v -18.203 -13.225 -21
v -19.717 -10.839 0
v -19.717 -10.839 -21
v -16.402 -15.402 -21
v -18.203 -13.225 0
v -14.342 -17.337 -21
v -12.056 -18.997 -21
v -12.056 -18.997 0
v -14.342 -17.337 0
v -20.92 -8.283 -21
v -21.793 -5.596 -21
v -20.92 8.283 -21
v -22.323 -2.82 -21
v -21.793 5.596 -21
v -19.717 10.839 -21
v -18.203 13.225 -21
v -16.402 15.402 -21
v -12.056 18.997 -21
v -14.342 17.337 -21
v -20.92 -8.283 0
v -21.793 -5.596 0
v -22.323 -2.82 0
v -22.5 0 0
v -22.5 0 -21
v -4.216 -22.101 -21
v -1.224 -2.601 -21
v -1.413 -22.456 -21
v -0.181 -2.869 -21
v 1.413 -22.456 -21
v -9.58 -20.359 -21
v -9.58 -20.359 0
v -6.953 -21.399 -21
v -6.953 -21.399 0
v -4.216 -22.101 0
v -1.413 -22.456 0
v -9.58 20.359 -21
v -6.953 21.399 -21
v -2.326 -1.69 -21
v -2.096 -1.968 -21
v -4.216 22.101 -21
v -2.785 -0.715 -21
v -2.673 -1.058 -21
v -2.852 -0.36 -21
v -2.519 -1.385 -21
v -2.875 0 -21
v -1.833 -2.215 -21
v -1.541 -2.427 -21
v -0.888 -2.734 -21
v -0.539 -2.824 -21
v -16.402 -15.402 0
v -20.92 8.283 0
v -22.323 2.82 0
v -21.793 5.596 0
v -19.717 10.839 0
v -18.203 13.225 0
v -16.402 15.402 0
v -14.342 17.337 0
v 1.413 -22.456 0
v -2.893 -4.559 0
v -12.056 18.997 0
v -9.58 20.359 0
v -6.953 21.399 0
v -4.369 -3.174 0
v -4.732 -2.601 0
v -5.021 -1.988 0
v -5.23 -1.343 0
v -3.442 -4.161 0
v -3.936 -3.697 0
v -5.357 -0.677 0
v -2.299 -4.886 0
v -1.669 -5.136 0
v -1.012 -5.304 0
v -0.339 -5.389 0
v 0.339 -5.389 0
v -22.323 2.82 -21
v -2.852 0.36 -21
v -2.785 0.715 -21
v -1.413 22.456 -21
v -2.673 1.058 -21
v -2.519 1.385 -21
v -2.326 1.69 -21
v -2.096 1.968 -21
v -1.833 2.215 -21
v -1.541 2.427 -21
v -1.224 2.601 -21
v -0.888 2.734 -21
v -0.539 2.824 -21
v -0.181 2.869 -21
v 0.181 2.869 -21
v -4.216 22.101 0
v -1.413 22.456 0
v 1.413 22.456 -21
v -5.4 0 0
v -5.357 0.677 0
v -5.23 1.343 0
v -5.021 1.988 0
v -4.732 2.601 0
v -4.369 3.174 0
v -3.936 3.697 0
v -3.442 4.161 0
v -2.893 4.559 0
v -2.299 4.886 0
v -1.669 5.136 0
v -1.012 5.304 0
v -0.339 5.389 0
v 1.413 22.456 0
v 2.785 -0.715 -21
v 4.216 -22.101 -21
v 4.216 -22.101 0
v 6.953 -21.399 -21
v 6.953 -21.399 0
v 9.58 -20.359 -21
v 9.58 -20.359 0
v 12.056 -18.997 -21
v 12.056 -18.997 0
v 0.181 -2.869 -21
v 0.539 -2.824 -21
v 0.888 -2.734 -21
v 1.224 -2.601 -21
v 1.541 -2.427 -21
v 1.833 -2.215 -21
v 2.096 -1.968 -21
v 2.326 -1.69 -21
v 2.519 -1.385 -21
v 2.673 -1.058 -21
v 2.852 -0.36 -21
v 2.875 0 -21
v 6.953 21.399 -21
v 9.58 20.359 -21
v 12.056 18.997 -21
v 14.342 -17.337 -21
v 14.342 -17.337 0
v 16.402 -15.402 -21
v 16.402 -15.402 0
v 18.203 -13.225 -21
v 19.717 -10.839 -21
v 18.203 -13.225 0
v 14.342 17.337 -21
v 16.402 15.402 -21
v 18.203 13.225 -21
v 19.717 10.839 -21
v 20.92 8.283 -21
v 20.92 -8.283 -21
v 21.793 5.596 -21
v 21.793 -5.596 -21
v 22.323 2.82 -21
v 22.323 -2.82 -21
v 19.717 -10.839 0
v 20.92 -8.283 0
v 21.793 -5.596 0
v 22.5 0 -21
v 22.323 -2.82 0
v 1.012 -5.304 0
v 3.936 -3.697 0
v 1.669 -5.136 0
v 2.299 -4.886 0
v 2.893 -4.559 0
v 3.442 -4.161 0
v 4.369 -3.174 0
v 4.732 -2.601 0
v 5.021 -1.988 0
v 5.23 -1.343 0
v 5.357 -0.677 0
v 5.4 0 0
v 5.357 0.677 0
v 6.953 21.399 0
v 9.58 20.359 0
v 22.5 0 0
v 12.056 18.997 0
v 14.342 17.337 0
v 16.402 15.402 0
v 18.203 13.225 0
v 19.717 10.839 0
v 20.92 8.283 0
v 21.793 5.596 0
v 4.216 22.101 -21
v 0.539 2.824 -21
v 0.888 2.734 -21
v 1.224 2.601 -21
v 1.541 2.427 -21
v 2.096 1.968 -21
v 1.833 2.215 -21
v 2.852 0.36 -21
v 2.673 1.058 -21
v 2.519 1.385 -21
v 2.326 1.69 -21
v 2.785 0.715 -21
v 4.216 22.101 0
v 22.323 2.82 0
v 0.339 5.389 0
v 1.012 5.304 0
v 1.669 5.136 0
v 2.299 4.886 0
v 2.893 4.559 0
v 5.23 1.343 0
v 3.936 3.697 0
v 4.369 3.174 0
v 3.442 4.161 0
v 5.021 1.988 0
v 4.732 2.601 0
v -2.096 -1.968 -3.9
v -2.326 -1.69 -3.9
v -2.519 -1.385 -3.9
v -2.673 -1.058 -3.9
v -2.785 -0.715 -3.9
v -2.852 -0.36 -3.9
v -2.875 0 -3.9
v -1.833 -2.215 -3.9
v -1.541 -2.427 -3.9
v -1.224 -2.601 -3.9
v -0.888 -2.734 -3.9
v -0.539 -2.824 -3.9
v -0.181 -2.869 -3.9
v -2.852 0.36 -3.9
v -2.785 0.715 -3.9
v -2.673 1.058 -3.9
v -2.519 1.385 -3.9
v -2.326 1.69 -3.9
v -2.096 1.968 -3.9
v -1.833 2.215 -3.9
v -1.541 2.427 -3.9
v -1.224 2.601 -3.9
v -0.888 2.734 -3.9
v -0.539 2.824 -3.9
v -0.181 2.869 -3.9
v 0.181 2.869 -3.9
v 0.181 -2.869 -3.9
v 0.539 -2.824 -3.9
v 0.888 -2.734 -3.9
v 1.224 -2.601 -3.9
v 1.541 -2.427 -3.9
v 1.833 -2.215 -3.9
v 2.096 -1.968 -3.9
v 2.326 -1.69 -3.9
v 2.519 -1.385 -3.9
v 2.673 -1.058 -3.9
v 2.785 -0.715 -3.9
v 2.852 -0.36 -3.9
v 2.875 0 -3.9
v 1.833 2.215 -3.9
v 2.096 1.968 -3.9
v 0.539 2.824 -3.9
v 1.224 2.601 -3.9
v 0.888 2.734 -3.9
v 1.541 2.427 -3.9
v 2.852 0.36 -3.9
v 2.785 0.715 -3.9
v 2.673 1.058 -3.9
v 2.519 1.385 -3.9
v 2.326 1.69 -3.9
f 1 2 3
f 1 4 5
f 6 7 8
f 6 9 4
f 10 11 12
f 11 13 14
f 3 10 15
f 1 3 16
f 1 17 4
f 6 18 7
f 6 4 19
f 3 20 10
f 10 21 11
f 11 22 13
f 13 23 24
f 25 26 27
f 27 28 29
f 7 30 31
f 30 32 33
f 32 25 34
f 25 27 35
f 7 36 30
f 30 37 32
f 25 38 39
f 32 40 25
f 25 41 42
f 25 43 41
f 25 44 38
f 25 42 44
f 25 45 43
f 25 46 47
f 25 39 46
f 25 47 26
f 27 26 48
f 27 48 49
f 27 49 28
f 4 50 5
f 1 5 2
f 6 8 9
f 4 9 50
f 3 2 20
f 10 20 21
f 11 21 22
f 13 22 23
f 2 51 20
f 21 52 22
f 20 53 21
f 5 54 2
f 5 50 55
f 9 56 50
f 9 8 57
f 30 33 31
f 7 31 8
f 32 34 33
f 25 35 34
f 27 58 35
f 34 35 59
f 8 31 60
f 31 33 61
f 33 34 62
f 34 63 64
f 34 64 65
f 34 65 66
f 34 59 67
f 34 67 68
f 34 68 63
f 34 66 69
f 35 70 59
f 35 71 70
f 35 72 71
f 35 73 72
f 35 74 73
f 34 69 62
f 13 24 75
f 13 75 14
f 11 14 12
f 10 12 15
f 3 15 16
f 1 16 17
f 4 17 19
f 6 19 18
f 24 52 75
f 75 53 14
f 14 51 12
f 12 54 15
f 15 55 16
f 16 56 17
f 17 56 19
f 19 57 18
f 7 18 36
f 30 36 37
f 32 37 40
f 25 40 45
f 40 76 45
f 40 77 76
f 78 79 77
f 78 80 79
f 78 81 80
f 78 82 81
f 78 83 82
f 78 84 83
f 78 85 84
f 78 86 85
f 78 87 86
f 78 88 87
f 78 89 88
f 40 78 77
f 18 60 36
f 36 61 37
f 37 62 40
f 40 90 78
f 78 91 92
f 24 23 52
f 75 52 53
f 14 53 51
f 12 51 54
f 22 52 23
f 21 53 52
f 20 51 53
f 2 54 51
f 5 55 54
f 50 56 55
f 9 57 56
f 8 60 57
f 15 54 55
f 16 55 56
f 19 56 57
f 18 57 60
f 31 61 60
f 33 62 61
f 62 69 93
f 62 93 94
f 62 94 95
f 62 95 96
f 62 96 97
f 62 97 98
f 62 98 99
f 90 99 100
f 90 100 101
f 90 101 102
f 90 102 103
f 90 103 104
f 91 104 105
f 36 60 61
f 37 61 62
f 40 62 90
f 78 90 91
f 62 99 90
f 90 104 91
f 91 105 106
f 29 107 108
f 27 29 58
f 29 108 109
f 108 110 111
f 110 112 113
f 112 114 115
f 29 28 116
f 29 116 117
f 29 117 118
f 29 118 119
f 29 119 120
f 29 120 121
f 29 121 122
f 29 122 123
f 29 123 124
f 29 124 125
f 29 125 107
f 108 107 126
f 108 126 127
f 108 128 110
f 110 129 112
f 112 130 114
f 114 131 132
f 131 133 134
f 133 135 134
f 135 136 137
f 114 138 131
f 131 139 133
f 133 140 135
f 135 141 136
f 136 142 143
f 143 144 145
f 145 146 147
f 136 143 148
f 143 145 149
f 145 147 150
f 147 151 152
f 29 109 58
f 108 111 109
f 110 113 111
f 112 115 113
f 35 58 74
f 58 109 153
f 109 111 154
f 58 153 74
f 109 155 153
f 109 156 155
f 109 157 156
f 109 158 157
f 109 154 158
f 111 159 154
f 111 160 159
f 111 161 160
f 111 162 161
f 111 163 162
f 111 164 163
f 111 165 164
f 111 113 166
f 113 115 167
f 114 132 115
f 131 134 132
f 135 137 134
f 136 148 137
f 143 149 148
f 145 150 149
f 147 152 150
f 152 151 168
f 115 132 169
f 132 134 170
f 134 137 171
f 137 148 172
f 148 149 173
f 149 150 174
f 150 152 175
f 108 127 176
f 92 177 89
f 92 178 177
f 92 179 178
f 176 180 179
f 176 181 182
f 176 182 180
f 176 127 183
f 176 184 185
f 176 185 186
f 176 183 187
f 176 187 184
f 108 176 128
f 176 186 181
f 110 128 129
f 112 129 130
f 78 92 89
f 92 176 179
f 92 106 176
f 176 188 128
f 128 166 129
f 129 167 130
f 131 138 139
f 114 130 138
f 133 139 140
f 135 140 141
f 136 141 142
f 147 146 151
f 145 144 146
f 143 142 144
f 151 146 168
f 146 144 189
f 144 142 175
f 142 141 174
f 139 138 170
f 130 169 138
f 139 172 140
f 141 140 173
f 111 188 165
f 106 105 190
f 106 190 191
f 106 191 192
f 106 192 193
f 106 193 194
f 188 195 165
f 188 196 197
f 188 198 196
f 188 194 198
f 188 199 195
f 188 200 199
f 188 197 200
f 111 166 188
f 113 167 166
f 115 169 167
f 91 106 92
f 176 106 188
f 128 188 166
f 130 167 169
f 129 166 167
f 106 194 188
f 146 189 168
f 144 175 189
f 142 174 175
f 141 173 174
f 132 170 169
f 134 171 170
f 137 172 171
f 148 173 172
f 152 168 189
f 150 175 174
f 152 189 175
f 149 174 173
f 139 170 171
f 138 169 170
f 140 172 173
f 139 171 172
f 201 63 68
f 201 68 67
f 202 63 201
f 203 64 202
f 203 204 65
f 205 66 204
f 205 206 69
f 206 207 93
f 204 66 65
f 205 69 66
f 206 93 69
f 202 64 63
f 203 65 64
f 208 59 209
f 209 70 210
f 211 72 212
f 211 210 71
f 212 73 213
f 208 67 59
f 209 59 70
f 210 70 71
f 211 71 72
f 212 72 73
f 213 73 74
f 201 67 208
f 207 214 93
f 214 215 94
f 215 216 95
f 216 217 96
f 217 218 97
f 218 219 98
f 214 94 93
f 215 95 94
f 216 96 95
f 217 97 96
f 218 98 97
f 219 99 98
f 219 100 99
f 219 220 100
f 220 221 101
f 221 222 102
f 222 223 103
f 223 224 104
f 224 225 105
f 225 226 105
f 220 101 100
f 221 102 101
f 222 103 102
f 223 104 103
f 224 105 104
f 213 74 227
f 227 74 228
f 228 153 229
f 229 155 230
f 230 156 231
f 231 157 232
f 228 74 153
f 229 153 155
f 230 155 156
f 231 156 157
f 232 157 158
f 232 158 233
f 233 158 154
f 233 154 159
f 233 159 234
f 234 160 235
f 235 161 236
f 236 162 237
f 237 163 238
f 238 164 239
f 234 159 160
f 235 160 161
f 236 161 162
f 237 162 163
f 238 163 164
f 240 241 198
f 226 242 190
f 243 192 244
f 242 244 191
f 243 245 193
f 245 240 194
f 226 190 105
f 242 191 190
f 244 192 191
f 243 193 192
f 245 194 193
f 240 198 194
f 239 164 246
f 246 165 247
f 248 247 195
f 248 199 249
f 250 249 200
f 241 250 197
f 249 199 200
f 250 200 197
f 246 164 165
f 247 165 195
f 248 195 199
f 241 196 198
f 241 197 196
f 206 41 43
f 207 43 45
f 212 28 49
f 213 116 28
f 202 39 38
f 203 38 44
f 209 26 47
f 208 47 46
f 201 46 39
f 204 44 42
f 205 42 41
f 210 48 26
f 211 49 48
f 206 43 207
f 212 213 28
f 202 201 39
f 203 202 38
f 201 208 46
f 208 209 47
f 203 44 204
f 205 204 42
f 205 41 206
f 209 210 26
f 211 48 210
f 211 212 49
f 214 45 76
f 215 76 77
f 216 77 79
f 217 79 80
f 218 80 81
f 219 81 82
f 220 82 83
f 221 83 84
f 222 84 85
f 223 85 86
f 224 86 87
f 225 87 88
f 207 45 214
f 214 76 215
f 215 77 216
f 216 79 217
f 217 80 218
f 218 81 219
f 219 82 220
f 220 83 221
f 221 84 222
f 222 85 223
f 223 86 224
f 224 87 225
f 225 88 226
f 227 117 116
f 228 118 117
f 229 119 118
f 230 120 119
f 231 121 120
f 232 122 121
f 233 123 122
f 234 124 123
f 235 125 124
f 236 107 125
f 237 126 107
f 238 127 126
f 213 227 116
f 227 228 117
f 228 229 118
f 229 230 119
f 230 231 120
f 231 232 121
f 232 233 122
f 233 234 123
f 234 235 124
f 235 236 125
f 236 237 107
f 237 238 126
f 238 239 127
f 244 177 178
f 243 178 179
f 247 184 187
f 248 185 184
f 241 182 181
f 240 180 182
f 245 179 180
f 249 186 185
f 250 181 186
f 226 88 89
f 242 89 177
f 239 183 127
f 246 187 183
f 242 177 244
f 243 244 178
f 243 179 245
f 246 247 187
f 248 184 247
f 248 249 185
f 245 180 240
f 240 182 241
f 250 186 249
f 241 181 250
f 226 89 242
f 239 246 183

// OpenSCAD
$fn = 50;

difference() {
	union() {
		translate(v = [0, 0, -21.0]) {
			cylinder(h = 21, r = 22.5);
		}
		#translate(v = [0, 0, -24.0]) {
			cylinder(h = 24, r = 2.875);
		}
	}
	union() {
		translate(v = [0, 0, 0]) {
			rotate(a = [0, 0, 0]) {
				difference() {
					union() {
						translate(v = [0, 0, -24.0]) {
							cylinder(h = 24, r = 2.6);
						}
						translate(v = [0, 0, -3.9]) {
							cylinder(h = 3.9, r1 = 2.875, r2 = 5.4);
						}
						translate(v = [0, 0, -24.0]) {
							cylinder(h = 24, r = 2.875);
						}
						translate(v = [0, 0, -24.0]) {
							cylinder(h = 24, r = 2.6);
						}
					}
					union();
				}
			}
		}
	}
}
